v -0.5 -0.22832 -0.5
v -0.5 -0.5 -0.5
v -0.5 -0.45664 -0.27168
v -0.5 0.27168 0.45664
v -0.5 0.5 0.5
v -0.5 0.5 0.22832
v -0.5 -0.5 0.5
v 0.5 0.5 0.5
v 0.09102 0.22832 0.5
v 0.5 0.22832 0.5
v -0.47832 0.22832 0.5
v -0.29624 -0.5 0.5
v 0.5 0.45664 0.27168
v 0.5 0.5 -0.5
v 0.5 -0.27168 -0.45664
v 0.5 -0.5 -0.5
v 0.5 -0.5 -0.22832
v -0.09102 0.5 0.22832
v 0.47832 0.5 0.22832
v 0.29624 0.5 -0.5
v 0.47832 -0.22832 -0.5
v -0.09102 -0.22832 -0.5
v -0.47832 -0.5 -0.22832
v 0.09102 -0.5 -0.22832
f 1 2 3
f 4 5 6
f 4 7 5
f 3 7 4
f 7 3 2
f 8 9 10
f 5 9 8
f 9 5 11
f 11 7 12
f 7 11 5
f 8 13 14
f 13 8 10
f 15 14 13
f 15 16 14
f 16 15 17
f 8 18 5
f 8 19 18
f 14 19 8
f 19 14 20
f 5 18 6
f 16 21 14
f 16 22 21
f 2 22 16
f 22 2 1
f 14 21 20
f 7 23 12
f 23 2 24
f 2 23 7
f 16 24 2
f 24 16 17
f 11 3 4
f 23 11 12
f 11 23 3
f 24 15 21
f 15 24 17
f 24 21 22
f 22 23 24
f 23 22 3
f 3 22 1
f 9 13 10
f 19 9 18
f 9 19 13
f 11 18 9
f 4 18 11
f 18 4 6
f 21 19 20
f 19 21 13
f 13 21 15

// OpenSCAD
difference(){
translate([-.5,-.5,-.5])
cube(1,1,1);
rotate(19.4712206344907,[0,1,1])
rotate(45,[1,0,0])
translate([-.515,-.515,-5])
cube([1.03,1.03,10],center=[0,0,0]);}
